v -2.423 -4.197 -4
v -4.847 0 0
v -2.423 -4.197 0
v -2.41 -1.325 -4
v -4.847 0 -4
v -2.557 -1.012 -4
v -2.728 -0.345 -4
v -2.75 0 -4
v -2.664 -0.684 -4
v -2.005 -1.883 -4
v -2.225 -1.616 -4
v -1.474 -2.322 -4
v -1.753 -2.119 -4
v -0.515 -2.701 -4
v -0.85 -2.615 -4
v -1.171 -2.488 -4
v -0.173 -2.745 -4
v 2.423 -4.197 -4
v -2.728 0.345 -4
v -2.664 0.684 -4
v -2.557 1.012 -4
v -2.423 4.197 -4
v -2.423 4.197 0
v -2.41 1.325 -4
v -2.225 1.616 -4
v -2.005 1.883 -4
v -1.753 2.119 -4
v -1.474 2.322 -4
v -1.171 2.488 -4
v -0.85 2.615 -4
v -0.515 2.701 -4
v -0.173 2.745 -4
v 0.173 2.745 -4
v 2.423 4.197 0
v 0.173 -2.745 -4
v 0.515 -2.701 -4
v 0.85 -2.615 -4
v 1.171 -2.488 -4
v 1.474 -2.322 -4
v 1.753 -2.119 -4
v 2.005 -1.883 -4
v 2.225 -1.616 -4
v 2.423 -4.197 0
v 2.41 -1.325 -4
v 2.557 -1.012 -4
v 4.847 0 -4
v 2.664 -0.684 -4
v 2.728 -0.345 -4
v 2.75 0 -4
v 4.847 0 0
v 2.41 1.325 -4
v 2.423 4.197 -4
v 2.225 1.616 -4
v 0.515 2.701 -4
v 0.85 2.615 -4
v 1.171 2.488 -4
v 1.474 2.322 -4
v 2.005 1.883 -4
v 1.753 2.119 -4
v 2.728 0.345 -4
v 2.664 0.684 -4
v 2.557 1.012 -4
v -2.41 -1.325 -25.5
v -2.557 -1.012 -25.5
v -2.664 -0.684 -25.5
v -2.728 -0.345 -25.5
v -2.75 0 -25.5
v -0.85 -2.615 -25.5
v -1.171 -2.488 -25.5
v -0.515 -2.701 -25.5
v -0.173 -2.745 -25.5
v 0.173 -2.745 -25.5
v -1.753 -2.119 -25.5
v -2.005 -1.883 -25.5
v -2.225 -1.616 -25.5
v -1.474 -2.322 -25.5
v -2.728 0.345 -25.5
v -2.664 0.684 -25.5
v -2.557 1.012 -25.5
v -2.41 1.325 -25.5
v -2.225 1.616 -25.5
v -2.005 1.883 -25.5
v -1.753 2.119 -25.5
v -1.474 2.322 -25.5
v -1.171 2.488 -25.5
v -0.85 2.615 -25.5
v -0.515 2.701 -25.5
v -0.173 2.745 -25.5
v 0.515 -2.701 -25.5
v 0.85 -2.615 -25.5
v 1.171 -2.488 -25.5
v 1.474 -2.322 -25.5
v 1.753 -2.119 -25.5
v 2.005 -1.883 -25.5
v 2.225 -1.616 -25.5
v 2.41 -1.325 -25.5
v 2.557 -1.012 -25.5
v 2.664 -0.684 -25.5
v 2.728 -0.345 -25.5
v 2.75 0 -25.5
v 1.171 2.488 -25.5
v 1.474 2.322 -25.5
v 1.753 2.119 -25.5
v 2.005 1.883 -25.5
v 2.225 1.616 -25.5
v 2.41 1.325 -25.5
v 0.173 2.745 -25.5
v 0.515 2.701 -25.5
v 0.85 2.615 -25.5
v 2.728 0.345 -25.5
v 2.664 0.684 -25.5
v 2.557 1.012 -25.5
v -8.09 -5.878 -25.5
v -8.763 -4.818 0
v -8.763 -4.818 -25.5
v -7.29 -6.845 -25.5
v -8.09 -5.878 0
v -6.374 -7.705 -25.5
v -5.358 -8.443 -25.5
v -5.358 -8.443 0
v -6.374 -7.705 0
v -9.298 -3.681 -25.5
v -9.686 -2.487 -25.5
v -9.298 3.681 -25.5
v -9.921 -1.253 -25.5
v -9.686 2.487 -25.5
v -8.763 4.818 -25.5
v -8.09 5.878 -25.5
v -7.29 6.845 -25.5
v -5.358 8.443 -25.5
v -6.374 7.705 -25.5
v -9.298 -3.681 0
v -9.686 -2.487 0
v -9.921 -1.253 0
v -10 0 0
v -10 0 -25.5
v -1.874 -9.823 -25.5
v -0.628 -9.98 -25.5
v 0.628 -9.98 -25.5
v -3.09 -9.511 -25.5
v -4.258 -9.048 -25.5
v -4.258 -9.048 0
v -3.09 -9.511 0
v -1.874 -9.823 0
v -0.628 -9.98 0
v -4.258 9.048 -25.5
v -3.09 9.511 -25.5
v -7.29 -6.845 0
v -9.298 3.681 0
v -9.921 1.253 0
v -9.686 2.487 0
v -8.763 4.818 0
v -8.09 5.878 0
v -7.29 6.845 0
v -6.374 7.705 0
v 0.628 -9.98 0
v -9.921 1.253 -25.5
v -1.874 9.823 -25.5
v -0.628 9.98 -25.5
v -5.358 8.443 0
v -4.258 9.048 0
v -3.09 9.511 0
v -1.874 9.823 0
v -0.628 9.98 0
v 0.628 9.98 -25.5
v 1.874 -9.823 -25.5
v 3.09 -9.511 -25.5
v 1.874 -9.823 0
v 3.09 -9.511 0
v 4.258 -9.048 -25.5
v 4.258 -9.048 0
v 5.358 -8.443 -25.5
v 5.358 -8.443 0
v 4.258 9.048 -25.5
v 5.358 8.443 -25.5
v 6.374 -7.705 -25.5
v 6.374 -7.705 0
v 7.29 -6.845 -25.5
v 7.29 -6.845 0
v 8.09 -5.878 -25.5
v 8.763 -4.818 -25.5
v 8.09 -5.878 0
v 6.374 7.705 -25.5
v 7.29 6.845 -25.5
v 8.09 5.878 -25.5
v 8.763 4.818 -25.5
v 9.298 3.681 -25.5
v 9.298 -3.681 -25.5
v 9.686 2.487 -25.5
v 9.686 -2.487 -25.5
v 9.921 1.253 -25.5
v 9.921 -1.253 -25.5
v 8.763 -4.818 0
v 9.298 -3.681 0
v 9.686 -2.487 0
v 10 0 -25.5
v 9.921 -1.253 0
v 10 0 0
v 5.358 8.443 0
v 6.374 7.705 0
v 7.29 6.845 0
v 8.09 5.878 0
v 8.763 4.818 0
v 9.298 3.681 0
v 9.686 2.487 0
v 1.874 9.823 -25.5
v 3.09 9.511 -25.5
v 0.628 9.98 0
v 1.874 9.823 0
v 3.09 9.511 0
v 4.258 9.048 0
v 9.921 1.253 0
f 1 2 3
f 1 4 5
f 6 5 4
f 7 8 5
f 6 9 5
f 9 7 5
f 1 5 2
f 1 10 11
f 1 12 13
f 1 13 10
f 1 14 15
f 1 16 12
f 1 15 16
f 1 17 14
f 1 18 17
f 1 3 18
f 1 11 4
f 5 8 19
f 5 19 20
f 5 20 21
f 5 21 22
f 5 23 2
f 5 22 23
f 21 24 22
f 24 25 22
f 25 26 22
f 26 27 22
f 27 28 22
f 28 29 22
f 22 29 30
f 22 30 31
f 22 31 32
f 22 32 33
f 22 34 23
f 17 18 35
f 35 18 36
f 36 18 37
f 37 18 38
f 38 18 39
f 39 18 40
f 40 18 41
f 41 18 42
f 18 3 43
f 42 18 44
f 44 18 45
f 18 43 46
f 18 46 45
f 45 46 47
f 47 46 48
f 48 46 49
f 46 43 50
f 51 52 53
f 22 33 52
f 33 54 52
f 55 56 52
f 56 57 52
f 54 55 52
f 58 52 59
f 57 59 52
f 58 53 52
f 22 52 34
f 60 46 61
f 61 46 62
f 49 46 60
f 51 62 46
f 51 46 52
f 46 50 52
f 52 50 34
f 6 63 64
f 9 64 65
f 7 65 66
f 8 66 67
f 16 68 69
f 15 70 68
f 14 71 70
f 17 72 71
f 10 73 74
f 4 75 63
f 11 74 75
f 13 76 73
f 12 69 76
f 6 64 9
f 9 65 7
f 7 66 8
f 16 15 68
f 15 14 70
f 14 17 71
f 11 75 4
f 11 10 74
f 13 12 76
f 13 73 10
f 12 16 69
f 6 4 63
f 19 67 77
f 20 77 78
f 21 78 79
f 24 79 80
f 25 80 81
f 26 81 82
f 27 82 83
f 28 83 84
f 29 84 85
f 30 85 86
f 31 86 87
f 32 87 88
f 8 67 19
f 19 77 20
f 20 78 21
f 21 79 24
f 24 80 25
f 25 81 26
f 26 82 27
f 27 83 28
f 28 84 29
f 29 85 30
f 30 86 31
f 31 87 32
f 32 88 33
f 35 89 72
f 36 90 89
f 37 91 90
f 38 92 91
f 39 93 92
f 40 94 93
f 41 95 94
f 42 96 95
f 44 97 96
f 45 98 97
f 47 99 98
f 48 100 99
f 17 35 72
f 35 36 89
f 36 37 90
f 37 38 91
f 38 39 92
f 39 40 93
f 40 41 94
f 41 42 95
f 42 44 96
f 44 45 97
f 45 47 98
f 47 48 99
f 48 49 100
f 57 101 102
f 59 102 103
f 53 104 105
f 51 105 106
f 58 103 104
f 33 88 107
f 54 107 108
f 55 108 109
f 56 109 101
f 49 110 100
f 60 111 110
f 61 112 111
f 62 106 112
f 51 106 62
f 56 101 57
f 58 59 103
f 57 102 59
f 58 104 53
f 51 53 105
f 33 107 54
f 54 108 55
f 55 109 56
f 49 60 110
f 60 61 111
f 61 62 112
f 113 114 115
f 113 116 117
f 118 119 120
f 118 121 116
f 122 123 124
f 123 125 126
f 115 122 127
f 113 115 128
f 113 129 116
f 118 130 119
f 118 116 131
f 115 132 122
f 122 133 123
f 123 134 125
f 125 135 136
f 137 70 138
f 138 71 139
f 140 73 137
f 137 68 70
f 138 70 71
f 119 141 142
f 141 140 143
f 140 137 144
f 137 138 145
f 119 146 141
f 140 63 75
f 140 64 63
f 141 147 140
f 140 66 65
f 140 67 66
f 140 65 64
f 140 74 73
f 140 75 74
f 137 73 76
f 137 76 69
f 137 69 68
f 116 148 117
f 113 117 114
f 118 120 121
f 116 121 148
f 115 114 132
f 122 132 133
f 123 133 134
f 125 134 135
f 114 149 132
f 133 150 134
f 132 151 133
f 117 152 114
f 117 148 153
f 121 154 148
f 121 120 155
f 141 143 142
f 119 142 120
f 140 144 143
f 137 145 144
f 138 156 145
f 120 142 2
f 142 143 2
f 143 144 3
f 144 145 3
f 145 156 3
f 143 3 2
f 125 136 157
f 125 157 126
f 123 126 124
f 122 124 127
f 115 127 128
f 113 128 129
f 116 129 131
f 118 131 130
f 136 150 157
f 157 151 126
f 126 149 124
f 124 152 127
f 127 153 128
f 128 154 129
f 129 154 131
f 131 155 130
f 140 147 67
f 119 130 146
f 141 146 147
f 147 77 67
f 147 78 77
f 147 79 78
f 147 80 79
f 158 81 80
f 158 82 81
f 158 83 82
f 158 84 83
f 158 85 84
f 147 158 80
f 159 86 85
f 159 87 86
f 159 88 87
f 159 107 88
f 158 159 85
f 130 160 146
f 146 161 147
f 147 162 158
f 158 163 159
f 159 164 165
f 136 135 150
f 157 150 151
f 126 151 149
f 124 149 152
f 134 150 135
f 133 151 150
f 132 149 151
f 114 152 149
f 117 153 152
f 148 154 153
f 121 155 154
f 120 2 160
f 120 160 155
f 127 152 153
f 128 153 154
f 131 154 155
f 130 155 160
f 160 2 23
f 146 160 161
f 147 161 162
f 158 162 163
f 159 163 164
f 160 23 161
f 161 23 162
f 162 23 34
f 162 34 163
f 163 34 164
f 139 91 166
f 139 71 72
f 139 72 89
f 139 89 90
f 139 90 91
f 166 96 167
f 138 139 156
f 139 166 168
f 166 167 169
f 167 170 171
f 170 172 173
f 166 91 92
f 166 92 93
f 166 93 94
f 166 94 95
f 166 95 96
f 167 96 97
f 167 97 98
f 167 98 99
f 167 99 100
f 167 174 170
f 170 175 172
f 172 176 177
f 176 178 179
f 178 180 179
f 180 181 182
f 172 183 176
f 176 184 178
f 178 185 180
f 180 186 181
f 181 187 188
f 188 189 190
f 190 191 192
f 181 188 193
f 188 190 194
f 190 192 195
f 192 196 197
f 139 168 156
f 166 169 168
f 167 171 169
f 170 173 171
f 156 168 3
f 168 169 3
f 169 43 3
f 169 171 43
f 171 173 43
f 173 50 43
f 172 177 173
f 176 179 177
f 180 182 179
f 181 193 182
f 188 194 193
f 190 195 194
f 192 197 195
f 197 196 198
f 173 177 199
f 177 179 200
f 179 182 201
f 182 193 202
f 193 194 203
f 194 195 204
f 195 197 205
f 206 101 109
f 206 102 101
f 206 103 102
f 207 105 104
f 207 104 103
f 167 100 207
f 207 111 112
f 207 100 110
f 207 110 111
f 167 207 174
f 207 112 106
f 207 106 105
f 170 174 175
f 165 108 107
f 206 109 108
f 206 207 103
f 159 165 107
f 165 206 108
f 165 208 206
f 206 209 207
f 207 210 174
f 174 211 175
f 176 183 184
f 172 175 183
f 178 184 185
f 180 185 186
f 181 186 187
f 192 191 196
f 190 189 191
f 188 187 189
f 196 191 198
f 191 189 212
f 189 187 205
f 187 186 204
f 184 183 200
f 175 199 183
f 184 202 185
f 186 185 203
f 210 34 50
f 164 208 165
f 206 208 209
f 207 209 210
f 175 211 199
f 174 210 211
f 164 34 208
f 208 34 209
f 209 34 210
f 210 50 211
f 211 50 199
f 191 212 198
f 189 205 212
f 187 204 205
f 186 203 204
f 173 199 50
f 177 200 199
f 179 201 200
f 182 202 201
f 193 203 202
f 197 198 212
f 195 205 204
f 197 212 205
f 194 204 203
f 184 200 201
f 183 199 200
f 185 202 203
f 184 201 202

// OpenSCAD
$fn = 50;

difference() {
	union() {
		translate(v = [0, 0, -25.5]) {
			cylinder(h = 25.5, r = 10.0);
		}
	}
	union() {
		translate(v = [0, 0, 0]) {
			rotate(a = [0, 0, 0]) {
				difference() {
					union() {
						translate(v = [0, 0, -4]) {
							linear_extrude(height = 4) {
								polygon(points = [[4.8468, 0.0], [2.4234000000000004, 4.197451927062417], [-2.423399999999999, 4.197451927062417], [-4.8468, 5.935618106107392e-16], [-2.423400000000002, -4.197451927062416], [2.423399999999997, -4.197451927062419]]);
							}
						}
					}
					union();
				}
			}
		}
		#translate(v = [0, 0, -100.0]) {
			cylinder(h = 200, r = 2.75);
		}
	}
}
